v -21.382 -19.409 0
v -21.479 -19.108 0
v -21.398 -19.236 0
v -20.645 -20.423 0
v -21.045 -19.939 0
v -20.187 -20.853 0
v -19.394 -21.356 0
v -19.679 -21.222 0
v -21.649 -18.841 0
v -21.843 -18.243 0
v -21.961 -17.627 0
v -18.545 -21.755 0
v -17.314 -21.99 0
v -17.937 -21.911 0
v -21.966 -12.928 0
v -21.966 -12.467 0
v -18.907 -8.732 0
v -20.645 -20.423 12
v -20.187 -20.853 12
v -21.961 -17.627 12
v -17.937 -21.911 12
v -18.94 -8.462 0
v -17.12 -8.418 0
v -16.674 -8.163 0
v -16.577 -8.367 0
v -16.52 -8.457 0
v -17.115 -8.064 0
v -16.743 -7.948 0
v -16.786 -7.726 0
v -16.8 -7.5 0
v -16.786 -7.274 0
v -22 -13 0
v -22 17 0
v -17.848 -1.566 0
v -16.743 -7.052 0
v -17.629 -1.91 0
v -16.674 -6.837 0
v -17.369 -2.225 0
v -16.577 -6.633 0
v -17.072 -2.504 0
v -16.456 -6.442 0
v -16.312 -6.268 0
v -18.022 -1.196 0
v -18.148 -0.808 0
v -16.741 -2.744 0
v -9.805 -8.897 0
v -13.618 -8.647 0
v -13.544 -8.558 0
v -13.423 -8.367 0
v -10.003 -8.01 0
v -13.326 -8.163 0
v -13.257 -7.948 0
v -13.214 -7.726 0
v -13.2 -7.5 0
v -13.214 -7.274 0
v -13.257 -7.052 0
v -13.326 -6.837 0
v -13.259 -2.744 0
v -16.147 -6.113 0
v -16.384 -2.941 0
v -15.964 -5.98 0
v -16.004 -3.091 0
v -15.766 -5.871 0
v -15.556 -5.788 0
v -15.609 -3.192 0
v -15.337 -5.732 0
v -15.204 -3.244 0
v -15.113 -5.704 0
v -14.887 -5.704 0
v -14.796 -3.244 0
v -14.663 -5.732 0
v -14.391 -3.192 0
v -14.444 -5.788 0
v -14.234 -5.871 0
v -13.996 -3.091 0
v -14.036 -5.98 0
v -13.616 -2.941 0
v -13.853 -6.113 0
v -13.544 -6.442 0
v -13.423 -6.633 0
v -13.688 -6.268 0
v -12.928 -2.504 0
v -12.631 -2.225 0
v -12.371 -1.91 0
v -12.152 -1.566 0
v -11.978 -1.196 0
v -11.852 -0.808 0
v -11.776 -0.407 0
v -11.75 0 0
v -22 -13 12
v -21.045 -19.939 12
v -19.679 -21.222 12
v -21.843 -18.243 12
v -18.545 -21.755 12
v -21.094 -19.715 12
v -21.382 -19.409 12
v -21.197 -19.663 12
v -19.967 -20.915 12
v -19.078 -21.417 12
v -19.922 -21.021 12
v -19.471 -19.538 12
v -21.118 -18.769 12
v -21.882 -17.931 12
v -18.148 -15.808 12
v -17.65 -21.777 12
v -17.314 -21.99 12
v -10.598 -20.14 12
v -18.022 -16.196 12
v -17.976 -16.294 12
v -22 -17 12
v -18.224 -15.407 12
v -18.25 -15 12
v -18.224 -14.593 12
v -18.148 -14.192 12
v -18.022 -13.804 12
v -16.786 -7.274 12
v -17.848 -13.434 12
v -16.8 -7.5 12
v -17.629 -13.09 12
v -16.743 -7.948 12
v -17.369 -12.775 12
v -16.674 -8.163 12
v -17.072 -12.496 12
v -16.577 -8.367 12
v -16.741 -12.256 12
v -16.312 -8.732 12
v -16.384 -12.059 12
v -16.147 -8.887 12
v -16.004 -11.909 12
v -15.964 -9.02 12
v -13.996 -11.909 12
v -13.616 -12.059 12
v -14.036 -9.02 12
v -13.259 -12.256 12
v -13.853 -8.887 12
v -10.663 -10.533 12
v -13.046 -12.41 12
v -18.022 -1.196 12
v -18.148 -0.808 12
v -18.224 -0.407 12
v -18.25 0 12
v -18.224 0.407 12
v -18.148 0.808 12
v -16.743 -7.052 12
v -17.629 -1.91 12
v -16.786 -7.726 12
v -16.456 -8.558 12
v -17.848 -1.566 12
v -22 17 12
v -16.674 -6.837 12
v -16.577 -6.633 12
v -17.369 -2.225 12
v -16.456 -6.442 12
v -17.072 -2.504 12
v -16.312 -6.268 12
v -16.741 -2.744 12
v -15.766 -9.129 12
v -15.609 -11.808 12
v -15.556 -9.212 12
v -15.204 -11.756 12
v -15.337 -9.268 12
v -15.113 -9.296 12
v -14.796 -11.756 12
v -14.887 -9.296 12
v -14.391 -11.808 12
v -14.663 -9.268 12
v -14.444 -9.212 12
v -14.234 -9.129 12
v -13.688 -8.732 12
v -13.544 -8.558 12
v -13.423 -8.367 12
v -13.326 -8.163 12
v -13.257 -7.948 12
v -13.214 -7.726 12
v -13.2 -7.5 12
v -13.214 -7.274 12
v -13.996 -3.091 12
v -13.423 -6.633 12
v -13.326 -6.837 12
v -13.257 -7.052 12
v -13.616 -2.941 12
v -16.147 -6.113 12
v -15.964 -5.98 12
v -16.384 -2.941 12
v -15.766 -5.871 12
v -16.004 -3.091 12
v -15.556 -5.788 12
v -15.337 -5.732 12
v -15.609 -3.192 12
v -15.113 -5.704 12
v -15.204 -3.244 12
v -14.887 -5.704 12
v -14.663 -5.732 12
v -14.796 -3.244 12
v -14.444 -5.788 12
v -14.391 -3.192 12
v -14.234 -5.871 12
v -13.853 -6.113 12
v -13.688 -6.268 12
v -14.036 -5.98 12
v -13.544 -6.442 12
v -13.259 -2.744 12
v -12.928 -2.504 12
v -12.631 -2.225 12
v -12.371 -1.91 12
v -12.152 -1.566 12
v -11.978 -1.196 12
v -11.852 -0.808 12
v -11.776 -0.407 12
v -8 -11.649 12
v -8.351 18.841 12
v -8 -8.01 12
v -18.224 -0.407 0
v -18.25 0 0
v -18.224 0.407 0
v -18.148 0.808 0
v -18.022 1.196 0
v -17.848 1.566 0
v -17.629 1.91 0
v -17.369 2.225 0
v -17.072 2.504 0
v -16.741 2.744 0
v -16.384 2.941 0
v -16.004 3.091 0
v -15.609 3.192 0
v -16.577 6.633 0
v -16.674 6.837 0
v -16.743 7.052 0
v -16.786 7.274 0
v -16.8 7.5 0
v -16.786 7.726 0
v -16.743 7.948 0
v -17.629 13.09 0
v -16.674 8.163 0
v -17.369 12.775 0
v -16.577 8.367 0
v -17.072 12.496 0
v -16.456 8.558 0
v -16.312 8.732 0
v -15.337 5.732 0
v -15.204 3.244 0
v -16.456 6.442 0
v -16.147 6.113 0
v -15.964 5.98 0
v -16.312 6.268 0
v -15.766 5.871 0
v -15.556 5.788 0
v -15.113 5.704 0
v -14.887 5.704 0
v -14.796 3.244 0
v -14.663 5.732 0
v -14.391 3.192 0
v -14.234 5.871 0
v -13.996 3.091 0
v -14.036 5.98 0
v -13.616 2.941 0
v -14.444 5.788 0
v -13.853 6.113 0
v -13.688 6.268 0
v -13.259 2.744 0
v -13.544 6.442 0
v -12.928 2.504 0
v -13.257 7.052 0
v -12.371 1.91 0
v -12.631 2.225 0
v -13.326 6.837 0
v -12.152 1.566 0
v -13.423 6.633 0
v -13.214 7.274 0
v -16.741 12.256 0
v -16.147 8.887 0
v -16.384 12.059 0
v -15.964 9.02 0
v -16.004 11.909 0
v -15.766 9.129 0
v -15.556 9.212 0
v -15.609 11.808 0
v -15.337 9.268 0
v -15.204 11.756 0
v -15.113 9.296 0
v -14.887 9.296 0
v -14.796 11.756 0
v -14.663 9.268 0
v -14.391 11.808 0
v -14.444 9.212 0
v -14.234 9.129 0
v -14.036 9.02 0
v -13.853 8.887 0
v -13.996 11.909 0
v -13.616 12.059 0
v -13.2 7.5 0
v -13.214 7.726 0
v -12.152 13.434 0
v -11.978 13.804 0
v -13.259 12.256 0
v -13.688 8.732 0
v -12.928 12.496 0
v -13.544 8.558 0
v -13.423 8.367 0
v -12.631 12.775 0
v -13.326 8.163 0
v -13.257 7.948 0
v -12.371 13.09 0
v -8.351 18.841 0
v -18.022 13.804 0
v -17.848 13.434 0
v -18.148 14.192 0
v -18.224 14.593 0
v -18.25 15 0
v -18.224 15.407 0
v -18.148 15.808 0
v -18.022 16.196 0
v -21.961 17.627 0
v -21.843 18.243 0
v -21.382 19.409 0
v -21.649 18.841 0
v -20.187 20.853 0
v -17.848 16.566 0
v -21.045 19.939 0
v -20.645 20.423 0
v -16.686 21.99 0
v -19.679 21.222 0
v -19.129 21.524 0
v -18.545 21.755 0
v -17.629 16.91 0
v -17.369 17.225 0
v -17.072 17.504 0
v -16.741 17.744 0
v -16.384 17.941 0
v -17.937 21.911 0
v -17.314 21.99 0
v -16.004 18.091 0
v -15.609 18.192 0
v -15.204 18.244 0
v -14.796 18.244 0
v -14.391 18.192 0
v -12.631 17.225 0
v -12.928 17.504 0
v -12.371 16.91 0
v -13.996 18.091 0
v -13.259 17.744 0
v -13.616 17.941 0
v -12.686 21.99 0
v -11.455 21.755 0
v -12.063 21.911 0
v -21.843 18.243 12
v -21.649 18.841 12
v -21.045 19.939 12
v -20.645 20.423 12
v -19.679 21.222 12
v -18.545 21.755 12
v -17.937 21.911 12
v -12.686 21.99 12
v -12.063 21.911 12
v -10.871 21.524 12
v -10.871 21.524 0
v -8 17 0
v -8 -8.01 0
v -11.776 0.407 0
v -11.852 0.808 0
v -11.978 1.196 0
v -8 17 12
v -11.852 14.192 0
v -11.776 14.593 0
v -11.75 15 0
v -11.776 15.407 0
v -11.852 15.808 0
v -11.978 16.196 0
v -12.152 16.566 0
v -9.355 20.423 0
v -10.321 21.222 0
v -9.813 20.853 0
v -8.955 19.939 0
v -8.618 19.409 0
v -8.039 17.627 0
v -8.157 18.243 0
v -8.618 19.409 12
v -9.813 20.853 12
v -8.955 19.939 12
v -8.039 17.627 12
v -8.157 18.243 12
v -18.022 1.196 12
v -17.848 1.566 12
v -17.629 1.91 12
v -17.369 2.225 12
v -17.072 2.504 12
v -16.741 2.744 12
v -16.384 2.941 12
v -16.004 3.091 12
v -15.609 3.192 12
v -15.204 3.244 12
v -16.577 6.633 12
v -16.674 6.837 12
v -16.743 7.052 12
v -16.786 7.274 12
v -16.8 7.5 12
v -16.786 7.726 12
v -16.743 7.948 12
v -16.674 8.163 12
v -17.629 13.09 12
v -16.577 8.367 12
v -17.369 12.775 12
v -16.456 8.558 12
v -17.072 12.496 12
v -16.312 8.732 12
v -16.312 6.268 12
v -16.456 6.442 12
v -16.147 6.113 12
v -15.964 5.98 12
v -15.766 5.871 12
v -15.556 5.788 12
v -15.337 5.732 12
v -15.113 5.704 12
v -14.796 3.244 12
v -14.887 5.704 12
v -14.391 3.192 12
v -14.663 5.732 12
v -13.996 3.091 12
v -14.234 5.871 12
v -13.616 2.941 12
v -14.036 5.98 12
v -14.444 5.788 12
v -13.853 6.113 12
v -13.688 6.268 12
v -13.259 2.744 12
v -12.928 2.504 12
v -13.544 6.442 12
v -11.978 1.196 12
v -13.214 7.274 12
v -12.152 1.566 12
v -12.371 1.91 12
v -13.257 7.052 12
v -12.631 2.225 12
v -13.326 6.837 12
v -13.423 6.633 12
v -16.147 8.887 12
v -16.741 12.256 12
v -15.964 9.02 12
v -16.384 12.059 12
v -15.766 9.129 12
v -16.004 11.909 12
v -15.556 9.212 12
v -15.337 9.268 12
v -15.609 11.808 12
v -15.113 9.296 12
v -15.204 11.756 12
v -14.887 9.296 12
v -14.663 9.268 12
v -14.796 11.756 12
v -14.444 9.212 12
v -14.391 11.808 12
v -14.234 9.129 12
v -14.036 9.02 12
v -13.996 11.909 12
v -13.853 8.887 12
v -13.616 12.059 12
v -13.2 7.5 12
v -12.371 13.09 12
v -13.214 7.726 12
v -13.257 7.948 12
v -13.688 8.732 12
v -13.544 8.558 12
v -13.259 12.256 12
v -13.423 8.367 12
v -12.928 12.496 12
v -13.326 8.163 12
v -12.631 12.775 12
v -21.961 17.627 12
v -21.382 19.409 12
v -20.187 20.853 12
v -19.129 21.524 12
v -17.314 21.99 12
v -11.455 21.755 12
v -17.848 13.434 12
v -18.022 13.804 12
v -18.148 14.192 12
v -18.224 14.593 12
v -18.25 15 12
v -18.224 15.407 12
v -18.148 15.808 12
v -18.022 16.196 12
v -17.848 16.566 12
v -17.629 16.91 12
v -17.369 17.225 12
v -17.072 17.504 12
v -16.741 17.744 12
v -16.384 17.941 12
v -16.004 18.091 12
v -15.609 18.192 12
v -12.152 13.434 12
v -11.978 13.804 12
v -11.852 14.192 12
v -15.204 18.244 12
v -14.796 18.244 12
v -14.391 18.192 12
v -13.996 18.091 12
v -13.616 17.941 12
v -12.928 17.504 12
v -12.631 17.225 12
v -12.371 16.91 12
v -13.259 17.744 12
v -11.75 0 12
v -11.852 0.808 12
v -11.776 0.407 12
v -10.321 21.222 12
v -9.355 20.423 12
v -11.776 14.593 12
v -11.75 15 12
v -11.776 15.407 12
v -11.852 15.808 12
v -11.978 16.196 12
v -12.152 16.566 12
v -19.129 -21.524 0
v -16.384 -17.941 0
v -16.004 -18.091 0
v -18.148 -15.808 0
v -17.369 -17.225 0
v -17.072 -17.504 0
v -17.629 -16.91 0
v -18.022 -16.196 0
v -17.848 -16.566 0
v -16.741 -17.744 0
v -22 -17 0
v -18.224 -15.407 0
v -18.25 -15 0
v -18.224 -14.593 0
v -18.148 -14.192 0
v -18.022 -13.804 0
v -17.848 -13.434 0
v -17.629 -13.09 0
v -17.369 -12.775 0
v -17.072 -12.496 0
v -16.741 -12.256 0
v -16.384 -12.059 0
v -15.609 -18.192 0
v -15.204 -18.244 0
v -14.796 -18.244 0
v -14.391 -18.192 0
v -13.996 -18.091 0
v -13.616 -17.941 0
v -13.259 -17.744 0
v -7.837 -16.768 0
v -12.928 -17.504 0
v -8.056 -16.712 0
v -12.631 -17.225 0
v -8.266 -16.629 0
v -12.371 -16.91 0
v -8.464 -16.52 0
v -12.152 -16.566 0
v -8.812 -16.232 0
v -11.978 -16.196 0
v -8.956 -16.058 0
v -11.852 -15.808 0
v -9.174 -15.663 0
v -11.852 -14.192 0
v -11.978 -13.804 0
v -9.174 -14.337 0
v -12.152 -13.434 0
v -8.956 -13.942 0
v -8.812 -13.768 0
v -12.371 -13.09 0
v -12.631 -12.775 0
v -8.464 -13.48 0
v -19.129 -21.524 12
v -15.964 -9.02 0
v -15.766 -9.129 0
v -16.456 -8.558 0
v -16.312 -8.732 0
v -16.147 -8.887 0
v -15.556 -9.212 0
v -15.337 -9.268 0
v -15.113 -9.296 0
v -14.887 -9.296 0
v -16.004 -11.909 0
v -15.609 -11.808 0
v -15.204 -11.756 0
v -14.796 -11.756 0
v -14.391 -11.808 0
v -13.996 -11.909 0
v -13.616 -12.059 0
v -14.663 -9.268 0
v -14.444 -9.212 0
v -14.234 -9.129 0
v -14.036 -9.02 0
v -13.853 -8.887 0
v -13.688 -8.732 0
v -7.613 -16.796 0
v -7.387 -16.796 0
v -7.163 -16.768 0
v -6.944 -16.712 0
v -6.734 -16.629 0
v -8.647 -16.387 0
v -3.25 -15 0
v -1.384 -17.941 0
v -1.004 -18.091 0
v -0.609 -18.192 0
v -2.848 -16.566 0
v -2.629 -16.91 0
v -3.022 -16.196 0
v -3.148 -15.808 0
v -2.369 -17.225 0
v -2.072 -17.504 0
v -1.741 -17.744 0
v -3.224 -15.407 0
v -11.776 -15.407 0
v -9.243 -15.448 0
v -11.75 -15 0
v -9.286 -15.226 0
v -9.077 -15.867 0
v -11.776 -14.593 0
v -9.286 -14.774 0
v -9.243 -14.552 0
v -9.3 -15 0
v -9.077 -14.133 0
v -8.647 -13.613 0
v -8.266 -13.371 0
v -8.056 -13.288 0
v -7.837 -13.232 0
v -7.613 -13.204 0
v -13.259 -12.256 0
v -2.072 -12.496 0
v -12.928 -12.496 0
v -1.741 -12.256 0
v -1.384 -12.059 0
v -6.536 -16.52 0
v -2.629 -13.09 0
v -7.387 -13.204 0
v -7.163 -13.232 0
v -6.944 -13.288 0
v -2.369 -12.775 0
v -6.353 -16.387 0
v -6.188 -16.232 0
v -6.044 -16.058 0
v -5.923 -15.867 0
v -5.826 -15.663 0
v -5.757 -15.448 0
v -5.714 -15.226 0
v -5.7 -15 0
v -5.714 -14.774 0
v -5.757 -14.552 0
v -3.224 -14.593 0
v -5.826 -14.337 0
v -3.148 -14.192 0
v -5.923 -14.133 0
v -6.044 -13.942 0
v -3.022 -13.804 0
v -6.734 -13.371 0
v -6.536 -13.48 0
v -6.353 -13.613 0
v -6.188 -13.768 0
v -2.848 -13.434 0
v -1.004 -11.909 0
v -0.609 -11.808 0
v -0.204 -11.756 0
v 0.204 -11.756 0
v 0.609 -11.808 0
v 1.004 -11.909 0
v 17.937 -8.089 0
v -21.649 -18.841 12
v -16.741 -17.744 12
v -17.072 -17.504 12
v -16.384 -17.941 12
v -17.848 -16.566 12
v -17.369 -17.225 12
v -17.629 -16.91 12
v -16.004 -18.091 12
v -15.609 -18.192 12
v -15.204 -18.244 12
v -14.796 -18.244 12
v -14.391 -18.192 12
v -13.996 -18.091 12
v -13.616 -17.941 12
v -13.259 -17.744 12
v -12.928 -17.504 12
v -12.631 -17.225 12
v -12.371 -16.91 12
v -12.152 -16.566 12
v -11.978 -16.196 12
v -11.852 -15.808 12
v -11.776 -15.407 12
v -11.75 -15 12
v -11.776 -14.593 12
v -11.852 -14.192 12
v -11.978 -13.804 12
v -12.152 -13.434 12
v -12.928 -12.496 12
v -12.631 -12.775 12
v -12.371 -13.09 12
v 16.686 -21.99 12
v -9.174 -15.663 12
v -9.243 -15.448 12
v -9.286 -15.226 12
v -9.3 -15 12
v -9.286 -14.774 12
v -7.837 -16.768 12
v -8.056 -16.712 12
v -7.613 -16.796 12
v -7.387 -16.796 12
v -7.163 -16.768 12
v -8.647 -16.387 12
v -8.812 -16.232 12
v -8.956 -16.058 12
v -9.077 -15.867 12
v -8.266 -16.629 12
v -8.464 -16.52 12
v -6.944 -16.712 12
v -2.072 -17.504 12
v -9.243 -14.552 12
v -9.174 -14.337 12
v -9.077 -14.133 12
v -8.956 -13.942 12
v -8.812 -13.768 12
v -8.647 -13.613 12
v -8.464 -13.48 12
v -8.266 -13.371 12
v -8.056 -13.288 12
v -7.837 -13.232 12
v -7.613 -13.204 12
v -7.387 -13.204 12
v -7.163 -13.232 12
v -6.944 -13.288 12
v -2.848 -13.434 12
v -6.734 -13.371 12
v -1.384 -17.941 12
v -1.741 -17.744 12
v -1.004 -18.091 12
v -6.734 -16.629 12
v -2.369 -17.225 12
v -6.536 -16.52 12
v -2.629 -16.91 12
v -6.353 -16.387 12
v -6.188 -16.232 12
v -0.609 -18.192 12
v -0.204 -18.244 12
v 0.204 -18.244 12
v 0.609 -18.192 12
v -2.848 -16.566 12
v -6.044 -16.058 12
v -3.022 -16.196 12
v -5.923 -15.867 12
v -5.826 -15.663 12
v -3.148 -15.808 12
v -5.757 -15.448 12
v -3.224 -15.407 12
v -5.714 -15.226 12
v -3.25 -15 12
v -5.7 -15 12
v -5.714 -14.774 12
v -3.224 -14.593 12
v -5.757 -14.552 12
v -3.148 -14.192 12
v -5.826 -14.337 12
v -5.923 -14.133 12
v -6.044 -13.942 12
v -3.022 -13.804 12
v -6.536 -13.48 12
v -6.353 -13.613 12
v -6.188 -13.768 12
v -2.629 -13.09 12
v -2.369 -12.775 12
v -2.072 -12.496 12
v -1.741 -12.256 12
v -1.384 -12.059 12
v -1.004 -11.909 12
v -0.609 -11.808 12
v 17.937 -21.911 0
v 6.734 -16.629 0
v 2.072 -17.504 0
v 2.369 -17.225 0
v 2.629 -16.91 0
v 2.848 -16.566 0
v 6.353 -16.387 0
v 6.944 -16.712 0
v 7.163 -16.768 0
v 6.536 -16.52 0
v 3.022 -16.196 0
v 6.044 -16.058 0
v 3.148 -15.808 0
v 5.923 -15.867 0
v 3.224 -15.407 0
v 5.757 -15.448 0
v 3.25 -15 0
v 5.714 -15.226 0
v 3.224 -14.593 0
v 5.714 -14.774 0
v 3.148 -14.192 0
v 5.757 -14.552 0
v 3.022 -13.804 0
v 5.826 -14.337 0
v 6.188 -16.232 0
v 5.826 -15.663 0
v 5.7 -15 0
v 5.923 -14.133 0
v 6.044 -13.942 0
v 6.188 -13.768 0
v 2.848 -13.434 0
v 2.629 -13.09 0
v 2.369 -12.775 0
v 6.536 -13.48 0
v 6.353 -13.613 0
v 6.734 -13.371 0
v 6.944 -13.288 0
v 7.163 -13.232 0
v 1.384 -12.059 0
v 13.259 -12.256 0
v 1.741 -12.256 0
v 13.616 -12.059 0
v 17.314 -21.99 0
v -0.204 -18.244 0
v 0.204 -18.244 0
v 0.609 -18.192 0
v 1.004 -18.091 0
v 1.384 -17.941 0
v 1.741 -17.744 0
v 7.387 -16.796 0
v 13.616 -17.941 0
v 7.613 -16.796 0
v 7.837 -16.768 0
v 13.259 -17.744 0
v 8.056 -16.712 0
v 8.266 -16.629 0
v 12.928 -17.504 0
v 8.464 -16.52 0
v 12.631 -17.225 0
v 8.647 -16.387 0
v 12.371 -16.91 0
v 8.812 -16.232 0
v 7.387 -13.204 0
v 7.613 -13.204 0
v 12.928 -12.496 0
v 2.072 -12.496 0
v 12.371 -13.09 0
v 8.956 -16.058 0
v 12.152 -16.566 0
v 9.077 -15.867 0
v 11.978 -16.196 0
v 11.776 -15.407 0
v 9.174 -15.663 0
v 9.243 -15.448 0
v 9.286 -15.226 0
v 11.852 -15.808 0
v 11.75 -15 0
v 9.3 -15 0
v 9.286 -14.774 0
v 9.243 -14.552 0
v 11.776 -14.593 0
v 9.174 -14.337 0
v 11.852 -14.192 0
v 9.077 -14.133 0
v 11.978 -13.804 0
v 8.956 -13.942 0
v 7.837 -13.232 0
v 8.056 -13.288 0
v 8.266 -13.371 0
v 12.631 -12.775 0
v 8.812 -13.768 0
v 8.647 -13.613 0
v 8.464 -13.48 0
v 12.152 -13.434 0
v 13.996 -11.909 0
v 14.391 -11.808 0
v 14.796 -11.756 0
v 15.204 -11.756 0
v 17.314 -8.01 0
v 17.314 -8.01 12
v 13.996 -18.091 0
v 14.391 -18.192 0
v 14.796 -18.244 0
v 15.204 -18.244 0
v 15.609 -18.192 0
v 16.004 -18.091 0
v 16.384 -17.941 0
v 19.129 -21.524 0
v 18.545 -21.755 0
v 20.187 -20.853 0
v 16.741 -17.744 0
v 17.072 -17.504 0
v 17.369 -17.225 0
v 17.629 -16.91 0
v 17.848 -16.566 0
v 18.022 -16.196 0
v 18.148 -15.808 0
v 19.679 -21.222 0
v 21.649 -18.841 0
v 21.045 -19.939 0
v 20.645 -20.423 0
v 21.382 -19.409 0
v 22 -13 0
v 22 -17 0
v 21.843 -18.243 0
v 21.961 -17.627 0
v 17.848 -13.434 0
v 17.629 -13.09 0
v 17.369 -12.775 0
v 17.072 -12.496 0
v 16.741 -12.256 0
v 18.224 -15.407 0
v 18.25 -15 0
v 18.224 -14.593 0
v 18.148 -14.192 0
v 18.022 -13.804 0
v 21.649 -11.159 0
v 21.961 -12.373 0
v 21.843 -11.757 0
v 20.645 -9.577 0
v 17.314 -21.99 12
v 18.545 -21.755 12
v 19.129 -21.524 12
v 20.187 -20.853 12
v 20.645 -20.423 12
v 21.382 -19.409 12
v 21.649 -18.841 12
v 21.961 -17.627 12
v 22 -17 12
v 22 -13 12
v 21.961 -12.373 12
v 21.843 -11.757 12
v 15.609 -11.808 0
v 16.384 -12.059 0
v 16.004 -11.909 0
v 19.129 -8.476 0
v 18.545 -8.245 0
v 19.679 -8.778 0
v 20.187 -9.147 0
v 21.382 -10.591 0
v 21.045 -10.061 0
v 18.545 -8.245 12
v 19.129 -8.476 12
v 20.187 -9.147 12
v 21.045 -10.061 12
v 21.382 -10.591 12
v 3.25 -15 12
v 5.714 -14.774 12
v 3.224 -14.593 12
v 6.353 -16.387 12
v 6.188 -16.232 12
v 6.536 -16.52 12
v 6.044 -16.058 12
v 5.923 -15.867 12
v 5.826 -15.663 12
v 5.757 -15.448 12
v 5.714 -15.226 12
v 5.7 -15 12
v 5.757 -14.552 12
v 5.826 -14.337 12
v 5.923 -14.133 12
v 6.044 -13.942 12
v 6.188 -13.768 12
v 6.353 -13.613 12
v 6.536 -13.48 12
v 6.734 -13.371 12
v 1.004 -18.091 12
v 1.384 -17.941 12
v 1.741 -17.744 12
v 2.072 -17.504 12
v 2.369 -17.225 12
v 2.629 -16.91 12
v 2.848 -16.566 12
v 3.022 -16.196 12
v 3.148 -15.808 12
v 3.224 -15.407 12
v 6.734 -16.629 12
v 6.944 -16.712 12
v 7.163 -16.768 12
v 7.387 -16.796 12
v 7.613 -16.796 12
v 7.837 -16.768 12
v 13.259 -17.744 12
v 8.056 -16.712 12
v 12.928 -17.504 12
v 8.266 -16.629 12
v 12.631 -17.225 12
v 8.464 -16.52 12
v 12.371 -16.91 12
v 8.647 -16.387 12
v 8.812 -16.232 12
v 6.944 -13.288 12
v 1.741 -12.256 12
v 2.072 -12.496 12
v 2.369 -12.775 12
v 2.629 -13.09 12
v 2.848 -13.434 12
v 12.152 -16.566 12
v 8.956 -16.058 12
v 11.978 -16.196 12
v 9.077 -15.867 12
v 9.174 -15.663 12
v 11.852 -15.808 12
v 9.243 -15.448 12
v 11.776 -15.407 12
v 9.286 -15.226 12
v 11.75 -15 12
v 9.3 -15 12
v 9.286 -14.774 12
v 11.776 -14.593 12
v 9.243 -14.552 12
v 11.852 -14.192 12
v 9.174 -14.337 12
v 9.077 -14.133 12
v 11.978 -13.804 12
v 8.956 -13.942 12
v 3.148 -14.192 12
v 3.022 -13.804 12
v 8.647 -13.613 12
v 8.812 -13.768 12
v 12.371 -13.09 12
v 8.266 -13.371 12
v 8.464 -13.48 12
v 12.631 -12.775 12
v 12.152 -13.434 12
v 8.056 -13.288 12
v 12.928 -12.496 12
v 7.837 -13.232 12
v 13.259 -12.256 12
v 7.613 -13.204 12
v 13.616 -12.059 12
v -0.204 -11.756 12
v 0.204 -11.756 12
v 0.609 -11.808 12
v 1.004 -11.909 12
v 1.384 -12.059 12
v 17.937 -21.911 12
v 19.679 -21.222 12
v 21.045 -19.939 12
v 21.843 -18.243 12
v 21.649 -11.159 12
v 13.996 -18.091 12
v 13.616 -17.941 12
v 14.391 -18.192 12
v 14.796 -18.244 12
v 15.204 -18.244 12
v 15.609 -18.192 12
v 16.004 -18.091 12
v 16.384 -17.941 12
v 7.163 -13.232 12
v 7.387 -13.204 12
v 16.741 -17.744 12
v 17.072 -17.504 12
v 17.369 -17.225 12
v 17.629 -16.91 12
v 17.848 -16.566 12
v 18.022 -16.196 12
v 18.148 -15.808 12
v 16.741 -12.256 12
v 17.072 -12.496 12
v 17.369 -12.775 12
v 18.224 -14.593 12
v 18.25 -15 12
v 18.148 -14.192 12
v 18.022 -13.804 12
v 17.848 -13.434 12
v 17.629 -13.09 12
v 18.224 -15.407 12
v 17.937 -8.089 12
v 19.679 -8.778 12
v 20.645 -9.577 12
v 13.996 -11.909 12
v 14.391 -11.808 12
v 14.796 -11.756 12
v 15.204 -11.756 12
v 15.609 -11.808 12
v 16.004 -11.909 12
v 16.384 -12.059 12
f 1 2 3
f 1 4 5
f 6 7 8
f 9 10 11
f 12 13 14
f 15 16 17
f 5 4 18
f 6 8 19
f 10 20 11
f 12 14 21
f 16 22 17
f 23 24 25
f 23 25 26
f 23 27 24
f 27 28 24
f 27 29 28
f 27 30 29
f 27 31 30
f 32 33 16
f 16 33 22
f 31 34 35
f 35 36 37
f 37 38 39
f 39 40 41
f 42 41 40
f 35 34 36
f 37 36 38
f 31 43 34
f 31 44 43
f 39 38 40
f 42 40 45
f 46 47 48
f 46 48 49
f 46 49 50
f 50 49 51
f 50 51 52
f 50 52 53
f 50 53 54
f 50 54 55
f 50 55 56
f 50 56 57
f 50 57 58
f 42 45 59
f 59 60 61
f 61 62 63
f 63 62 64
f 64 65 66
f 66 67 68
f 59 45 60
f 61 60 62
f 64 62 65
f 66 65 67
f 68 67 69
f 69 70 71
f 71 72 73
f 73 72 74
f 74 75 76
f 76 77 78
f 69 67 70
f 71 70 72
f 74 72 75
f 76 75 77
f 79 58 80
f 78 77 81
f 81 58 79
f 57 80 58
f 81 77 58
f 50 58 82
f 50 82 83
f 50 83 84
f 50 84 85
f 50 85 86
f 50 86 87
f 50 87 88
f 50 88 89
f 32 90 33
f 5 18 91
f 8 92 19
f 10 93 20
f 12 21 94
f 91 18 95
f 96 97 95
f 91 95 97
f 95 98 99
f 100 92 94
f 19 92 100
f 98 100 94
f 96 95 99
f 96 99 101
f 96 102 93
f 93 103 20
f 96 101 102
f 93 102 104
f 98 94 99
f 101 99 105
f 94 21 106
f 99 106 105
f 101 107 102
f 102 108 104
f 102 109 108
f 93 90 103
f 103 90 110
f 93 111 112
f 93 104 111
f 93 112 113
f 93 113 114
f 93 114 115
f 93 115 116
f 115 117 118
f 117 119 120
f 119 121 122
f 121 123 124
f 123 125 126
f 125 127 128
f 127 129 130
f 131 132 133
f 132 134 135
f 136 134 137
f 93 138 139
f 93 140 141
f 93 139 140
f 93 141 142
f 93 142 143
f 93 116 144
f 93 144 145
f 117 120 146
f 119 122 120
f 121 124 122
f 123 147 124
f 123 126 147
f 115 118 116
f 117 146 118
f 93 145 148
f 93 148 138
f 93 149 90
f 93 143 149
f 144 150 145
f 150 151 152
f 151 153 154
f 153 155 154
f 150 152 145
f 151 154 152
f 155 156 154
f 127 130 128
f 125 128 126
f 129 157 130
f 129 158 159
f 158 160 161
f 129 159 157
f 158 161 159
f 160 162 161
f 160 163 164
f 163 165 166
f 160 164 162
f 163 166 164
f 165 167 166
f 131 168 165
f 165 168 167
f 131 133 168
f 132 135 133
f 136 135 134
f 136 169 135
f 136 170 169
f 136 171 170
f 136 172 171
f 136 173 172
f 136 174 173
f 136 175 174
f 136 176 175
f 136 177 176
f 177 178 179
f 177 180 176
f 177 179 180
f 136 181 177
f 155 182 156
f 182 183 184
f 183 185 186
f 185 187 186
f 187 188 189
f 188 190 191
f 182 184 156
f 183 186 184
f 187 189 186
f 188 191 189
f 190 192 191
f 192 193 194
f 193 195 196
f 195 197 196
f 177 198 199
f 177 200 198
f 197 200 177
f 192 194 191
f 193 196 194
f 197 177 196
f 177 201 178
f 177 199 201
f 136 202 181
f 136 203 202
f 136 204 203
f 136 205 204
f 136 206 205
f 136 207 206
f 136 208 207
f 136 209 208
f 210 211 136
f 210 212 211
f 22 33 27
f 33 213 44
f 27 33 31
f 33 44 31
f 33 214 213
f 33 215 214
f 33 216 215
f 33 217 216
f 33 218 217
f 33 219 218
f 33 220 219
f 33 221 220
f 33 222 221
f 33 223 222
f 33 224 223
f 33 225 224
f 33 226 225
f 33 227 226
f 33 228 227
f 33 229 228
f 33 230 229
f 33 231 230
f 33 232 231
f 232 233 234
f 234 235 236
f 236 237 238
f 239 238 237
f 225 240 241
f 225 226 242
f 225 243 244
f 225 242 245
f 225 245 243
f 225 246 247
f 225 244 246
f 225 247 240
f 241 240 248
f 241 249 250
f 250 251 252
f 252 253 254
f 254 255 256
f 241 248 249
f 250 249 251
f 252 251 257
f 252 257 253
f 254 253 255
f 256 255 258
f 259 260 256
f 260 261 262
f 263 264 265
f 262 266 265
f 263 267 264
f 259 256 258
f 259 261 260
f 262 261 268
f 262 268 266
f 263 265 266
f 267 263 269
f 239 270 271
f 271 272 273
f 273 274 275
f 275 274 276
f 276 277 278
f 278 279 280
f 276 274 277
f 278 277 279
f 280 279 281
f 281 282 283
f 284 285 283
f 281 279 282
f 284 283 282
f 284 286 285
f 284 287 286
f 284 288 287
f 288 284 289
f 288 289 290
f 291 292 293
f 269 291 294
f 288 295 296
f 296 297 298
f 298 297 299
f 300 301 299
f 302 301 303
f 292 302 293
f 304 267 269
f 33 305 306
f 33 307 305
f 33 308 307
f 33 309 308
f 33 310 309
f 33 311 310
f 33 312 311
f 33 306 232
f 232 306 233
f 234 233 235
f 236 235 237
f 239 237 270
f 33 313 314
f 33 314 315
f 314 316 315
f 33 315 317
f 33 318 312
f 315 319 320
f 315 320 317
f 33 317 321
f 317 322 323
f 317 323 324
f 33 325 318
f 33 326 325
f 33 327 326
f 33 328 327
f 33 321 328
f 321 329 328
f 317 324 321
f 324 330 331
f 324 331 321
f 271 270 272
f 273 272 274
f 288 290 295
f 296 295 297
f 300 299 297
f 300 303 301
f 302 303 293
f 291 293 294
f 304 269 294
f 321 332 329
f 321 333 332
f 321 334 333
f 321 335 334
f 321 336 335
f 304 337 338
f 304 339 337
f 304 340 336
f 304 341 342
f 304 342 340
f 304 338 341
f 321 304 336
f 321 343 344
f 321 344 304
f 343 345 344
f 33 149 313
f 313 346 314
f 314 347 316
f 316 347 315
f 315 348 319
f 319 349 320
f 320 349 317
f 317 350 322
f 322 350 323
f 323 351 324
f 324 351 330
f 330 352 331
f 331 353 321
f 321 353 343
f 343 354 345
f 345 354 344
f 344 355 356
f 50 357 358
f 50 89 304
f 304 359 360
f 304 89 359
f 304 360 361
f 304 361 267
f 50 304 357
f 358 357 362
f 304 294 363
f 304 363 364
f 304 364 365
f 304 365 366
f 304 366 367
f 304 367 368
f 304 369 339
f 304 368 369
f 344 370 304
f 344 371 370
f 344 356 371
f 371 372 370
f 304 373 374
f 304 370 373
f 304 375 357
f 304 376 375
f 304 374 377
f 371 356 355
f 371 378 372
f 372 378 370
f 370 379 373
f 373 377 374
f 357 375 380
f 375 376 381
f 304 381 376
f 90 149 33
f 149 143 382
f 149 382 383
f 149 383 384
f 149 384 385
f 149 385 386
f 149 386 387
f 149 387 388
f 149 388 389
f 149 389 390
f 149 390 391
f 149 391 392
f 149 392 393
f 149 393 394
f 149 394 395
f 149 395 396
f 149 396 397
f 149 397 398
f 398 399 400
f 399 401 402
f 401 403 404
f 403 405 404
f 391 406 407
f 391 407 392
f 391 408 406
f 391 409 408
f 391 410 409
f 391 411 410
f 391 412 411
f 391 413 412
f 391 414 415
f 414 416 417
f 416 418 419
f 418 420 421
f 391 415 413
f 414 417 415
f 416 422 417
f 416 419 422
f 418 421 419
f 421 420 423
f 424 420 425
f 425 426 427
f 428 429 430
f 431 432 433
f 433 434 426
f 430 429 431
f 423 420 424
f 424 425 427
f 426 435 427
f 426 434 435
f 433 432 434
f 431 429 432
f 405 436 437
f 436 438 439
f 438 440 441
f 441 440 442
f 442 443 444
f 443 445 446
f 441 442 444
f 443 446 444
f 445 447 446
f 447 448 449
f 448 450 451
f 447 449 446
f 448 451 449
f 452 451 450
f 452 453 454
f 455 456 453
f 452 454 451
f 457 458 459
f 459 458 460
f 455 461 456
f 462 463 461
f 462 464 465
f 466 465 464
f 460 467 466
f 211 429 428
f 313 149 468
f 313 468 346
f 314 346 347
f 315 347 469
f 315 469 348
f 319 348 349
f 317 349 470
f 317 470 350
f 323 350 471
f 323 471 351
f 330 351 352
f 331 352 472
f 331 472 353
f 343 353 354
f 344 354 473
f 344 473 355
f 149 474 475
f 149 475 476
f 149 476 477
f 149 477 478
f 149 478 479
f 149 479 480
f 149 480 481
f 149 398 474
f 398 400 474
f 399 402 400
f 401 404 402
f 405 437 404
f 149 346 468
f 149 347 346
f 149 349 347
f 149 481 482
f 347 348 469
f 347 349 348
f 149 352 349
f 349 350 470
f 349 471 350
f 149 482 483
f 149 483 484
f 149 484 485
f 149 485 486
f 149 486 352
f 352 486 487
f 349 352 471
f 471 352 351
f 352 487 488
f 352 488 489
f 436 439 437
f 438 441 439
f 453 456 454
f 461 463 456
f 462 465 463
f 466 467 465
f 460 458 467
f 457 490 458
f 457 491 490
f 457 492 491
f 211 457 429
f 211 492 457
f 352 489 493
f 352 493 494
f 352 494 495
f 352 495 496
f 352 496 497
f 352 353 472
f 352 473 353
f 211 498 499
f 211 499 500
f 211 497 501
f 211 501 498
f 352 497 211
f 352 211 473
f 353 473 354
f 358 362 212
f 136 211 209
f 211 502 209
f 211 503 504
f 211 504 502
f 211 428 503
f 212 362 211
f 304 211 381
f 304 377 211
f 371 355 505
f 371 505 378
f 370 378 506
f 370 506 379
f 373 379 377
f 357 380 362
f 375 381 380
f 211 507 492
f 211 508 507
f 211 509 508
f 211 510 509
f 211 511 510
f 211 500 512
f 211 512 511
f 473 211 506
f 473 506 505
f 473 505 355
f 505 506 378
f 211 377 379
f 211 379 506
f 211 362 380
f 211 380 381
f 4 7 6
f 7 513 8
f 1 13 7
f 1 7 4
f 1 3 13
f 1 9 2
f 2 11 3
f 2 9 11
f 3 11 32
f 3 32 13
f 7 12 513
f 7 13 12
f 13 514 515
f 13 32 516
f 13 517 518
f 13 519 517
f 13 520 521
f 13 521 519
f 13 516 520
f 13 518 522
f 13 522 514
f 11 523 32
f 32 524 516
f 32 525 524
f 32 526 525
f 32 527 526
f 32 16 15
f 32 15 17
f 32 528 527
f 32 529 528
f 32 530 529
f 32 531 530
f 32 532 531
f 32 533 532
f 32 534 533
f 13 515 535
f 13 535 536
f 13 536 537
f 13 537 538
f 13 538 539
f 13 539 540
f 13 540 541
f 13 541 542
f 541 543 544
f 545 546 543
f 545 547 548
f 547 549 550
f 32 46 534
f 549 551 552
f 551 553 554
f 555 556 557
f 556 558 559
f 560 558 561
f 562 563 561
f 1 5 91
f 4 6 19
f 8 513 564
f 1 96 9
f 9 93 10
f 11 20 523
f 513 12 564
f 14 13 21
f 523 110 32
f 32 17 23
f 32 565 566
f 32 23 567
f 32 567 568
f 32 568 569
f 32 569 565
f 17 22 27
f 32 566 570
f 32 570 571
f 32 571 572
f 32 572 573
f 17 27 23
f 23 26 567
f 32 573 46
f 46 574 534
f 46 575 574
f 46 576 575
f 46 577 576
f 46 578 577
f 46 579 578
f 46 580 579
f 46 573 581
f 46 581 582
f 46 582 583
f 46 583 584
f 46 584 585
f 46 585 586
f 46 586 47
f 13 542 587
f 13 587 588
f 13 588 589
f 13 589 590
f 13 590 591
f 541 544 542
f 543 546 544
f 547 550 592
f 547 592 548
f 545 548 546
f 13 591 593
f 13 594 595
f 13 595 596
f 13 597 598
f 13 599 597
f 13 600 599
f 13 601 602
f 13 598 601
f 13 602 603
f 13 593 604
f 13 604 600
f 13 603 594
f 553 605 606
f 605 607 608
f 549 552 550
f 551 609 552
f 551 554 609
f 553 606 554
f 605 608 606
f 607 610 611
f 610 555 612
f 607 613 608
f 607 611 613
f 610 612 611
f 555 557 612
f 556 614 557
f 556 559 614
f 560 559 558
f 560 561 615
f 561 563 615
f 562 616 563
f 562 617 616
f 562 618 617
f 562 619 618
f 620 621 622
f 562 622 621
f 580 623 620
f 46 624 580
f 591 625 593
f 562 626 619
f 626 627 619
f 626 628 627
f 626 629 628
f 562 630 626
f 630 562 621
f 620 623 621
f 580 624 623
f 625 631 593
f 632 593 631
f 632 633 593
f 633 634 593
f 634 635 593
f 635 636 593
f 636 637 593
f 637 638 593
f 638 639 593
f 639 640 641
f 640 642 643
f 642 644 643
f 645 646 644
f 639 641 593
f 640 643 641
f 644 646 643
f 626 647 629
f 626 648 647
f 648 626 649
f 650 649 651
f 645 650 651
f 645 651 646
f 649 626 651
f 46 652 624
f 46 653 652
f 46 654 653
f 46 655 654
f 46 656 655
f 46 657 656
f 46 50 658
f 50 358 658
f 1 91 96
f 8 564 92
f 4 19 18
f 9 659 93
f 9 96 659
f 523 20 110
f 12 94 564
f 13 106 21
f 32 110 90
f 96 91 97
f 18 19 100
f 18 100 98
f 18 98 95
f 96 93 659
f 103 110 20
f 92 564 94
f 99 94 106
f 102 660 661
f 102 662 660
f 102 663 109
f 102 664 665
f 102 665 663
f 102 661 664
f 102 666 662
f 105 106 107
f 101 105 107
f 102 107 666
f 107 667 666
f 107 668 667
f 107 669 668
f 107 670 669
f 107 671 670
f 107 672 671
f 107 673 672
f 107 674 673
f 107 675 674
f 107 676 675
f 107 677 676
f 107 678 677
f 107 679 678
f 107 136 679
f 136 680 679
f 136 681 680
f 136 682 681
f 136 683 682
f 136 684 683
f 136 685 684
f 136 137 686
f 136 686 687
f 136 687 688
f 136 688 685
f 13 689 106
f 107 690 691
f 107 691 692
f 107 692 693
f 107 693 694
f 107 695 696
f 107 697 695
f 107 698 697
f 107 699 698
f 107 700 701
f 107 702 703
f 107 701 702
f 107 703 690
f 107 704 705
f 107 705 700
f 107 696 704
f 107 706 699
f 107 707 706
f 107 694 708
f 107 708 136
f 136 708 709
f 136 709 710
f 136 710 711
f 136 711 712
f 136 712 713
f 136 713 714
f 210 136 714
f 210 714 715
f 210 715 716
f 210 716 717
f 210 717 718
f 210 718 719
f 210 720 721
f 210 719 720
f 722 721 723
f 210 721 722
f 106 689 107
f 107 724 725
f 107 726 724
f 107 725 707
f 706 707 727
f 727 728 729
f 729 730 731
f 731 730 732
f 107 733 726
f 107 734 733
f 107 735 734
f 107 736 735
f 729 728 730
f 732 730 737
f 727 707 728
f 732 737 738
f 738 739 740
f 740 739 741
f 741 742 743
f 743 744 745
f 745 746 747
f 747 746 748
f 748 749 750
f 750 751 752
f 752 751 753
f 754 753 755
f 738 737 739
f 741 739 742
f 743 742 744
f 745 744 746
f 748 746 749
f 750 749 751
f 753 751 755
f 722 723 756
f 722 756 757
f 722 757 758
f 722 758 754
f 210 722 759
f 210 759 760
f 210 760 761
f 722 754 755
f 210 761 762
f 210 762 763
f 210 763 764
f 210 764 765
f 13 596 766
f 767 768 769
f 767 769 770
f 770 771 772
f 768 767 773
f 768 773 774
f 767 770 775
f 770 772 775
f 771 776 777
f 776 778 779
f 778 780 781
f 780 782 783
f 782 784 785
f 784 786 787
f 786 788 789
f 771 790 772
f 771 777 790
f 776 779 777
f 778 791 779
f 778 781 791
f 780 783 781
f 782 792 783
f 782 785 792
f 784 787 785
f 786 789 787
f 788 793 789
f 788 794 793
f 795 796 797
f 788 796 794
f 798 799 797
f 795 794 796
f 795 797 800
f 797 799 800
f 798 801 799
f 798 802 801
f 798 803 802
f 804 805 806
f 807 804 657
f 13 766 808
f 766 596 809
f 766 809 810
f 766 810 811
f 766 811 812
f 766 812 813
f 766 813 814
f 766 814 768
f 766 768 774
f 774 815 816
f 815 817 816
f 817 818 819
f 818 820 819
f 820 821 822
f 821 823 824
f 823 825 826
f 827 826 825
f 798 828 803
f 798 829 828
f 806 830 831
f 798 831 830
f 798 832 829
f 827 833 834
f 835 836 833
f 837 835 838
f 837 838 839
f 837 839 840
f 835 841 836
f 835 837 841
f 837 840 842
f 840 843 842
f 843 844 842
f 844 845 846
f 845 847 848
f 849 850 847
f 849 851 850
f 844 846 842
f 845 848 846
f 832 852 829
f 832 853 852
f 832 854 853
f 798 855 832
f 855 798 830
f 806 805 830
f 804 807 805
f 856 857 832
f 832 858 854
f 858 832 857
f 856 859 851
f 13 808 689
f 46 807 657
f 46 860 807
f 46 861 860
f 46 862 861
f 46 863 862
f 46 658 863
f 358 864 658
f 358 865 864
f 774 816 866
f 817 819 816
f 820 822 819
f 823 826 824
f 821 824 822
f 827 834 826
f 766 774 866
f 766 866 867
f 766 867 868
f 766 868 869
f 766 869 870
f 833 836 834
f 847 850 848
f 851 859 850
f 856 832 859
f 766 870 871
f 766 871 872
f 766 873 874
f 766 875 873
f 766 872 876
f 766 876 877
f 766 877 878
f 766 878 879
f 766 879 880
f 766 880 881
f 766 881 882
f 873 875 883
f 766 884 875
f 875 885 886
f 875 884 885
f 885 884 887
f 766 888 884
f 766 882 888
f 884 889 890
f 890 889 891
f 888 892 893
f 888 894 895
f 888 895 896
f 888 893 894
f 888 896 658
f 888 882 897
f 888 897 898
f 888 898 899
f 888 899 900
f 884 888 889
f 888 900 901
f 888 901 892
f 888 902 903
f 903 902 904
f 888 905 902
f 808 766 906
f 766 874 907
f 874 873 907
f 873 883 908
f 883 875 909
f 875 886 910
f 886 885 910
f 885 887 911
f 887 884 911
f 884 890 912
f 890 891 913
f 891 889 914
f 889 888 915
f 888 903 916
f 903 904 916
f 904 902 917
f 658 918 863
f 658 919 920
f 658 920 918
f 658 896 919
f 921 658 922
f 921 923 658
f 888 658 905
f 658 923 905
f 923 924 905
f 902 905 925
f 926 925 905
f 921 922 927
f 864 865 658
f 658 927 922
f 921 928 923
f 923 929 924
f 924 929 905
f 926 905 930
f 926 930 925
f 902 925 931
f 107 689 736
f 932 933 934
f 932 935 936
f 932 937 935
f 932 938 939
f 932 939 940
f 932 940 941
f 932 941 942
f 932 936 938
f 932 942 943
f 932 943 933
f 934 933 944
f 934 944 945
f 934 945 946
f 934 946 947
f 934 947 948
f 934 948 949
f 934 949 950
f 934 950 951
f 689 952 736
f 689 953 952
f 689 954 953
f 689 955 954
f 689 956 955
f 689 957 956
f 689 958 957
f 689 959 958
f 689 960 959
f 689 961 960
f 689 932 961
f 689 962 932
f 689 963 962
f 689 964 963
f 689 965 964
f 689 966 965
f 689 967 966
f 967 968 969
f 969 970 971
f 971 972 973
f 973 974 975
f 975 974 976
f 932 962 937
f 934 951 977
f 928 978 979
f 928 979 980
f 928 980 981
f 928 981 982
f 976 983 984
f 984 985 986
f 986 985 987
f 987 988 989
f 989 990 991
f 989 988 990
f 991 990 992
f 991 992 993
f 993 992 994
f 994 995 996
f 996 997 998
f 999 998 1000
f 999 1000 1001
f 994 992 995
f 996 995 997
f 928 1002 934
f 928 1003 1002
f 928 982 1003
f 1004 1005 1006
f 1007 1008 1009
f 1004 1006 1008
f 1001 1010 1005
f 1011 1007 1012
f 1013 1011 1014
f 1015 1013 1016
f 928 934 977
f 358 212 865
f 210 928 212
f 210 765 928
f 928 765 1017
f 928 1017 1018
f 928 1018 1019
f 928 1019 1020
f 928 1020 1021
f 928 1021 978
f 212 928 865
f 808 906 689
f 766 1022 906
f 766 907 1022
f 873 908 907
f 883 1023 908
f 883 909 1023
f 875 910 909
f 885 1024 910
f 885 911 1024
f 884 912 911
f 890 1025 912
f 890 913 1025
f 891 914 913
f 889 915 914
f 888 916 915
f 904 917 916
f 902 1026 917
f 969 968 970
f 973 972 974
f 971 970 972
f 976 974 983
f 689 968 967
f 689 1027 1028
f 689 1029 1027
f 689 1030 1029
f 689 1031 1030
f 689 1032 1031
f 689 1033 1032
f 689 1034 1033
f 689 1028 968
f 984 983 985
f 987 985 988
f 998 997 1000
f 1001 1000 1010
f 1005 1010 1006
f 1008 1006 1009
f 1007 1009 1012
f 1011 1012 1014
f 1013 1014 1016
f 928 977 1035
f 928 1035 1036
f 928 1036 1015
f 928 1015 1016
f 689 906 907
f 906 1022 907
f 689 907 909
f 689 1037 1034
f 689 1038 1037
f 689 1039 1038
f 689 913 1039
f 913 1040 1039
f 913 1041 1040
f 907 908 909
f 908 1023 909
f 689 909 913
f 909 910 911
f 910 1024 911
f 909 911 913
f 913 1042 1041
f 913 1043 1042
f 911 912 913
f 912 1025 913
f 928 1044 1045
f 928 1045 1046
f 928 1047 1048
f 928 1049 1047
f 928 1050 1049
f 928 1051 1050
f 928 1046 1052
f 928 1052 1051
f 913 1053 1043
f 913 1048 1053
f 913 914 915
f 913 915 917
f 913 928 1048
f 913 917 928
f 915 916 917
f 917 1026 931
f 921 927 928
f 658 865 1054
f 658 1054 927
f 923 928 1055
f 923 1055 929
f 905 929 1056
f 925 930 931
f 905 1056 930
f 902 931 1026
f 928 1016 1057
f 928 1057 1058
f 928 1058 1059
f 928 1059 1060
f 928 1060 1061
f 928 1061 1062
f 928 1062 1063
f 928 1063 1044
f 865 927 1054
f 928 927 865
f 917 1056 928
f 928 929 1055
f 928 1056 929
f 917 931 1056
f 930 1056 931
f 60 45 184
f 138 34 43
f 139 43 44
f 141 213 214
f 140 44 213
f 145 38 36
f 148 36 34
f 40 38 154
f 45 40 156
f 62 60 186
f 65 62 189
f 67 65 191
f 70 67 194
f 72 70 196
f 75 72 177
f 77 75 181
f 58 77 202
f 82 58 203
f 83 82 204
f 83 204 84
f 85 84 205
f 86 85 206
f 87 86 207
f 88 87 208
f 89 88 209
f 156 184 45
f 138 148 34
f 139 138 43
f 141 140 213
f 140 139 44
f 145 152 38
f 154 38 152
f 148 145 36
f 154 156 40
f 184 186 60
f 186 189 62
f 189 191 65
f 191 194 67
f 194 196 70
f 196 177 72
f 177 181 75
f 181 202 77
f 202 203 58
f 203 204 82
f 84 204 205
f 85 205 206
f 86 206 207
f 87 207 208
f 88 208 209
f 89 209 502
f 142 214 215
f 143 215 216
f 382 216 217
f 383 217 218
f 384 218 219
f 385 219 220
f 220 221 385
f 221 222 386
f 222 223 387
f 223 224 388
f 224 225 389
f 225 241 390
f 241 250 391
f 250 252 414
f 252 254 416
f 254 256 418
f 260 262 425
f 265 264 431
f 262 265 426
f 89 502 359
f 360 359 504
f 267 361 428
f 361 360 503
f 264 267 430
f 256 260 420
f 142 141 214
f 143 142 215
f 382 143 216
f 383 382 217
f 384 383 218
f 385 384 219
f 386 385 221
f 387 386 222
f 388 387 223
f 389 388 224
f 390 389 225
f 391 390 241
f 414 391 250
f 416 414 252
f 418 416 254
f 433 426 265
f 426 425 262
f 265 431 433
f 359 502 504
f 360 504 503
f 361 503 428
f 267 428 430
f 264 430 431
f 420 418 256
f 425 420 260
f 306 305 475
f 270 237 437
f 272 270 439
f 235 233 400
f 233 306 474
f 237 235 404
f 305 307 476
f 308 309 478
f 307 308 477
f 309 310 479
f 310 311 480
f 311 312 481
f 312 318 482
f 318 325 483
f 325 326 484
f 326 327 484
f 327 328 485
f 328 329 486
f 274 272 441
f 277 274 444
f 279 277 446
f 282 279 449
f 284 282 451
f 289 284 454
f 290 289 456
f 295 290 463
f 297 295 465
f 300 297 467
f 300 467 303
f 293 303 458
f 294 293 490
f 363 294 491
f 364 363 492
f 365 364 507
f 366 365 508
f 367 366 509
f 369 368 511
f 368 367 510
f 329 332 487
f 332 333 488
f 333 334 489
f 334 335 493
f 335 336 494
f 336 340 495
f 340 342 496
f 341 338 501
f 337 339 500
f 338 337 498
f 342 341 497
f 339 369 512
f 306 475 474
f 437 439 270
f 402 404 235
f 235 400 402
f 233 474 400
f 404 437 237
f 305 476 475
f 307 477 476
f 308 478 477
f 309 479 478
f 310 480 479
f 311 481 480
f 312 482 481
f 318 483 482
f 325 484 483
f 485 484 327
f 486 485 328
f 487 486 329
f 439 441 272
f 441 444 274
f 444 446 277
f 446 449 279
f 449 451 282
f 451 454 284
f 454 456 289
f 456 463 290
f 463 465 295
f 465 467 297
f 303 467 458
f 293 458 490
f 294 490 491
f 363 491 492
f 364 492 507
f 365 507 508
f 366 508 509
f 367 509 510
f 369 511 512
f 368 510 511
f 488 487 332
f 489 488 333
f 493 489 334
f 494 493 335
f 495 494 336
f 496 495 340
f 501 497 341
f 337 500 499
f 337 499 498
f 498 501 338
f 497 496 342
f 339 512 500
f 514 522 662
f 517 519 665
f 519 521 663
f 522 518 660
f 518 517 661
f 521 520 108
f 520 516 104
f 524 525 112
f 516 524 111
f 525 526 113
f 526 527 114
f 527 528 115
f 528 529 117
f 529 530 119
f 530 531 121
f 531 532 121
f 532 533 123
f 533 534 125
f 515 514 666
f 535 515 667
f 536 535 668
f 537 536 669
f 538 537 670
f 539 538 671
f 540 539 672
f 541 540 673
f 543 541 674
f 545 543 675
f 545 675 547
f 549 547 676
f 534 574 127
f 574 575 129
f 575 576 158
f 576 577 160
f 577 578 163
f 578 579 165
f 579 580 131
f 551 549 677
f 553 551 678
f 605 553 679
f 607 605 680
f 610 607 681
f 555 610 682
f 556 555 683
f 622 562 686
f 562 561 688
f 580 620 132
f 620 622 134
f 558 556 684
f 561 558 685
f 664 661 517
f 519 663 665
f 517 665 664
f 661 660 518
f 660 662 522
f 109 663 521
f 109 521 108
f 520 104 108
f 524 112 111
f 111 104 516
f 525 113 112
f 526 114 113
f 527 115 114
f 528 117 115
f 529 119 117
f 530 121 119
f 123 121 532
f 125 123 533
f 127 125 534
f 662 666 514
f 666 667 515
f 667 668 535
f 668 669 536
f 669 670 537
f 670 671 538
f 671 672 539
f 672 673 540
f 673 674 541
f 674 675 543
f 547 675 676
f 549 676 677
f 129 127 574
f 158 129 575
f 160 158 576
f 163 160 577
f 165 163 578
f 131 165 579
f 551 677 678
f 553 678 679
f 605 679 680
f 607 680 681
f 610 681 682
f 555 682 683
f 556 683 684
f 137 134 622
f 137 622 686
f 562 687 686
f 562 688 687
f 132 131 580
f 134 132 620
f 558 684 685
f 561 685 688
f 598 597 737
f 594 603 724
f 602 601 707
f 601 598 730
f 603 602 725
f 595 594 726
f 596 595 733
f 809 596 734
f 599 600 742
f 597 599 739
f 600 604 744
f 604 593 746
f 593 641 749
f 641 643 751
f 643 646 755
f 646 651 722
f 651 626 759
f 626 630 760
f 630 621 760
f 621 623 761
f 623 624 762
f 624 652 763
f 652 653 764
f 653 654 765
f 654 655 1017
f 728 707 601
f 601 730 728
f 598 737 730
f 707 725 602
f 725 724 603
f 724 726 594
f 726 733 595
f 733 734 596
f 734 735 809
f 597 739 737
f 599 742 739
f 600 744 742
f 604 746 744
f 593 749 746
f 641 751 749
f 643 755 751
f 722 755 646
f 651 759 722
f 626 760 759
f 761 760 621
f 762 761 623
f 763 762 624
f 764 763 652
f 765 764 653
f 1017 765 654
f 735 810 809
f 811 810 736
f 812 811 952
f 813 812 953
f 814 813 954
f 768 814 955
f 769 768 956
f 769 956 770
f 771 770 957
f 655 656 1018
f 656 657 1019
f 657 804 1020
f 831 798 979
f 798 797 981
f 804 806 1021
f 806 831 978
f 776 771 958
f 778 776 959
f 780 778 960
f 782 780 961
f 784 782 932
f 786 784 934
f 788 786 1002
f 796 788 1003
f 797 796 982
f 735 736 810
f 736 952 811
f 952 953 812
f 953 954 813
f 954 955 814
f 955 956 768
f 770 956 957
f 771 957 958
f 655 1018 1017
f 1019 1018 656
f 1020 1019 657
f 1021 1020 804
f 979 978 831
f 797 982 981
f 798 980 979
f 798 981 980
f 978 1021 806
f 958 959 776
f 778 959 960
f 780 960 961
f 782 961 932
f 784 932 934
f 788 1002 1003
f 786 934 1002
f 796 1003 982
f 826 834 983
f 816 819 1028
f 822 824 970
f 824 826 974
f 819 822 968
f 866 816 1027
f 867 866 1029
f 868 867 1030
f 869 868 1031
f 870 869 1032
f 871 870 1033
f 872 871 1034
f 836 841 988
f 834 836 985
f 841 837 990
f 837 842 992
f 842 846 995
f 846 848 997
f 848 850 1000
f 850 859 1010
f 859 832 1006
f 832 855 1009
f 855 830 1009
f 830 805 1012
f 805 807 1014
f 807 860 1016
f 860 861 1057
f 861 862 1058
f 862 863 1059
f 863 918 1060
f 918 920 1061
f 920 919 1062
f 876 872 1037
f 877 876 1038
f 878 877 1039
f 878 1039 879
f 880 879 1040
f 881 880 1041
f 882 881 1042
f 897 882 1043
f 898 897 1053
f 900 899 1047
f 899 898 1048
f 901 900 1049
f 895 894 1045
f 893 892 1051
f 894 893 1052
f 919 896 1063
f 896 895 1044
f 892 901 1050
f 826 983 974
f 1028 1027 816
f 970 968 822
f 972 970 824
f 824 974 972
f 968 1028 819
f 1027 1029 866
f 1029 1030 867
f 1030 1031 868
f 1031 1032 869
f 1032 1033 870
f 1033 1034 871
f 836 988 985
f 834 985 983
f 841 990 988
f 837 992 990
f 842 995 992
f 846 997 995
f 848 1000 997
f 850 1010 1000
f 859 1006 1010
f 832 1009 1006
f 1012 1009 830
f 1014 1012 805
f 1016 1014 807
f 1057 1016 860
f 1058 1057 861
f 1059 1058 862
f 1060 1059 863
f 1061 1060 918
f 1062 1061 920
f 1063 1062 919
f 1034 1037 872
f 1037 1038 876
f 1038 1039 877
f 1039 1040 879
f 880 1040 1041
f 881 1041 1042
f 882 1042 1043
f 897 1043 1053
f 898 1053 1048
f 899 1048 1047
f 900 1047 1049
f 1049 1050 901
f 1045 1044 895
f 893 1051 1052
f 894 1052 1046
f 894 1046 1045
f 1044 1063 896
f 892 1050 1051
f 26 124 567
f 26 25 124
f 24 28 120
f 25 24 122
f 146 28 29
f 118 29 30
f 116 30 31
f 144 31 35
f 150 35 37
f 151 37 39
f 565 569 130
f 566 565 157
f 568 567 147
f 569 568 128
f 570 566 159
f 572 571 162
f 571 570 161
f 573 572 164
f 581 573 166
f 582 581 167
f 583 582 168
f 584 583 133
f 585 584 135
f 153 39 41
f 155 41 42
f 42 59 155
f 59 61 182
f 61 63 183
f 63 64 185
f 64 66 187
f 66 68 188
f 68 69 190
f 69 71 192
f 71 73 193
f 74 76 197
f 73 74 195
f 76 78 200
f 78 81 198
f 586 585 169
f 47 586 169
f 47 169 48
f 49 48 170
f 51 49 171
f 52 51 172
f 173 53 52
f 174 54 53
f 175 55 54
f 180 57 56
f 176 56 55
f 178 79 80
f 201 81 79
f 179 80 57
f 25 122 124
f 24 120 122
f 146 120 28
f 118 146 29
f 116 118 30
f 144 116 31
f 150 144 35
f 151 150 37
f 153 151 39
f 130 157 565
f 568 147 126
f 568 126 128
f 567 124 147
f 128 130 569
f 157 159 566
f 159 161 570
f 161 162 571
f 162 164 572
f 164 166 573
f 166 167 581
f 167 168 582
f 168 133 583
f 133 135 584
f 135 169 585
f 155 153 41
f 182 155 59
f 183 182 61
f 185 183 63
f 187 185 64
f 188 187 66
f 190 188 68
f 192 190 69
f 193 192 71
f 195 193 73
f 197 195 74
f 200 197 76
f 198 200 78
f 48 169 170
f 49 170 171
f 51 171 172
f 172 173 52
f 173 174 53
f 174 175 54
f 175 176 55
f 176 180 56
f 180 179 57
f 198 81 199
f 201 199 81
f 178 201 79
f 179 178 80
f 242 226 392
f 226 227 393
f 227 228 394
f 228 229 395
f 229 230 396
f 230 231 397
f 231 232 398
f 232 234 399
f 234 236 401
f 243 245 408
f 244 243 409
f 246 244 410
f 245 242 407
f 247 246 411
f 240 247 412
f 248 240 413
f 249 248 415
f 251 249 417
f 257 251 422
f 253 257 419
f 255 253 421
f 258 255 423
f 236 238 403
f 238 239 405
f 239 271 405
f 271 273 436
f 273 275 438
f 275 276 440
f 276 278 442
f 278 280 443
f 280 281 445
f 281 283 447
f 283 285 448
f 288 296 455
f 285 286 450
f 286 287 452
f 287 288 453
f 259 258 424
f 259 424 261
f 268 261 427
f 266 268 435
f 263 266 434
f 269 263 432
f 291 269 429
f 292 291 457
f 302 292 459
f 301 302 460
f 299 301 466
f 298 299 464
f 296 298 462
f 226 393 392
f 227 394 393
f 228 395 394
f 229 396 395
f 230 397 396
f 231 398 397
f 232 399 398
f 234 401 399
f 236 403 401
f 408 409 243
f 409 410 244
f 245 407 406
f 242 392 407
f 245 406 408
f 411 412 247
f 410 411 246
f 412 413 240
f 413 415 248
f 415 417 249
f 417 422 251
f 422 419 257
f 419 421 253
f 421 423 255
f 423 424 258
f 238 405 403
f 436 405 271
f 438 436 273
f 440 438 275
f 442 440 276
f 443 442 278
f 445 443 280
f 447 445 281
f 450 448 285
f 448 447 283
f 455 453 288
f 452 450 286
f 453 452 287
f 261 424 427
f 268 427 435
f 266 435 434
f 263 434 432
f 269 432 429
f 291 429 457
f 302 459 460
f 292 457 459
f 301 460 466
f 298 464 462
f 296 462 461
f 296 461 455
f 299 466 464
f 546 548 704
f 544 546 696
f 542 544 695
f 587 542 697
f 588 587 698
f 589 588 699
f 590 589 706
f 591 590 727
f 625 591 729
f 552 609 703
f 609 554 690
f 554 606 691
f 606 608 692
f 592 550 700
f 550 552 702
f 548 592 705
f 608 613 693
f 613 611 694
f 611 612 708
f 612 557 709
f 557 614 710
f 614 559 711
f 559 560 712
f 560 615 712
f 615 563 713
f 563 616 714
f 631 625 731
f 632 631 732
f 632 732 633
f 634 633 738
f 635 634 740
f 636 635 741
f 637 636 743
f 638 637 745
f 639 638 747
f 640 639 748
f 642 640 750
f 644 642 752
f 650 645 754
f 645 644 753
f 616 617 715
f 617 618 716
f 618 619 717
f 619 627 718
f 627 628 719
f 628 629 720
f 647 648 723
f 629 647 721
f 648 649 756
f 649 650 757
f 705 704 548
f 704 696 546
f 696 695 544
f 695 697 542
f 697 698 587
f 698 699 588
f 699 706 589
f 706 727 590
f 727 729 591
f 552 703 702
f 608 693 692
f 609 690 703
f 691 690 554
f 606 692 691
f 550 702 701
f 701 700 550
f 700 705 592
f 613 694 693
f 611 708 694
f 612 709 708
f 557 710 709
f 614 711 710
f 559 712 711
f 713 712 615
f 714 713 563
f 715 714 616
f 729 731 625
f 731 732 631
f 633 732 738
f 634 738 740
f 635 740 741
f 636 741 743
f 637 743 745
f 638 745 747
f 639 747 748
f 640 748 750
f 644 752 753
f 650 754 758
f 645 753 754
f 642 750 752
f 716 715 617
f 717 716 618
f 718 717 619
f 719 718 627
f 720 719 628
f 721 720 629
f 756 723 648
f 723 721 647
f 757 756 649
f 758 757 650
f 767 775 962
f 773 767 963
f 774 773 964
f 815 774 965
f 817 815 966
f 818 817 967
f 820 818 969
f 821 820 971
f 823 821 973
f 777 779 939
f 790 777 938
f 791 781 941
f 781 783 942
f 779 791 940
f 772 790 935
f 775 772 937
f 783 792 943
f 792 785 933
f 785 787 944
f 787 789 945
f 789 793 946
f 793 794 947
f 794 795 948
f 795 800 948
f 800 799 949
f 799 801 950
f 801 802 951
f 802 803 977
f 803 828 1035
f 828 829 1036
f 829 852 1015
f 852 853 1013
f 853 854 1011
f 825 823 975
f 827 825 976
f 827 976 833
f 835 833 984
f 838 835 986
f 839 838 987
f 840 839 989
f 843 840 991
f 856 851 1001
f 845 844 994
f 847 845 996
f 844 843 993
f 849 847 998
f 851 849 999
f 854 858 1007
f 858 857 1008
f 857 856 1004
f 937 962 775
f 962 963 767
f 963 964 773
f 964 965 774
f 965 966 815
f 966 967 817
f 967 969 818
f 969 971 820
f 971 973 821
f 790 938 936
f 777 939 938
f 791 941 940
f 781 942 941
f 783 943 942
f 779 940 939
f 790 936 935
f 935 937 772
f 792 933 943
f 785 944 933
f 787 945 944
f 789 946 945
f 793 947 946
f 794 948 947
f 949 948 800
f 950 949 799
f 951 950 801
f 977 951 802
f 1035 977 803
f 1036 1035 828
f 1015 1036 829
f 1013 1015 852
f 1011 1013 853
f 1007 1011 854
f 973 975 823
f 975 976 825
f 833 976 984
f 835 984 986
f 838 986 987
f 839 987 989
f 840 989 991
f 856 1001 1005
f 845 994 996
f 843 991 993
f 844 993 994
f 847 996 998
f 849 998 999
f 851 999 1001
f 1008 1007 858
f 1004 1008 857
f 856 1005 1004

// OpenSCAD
$fn = 50;

difference() {
	union() {
		translate(v = [-15.0, 0, 0]) {
			hull() {
				translate(v = [-2.0, 17.0, 0]) {
					cylinder(h = 12, r = 5);
				}
				translate(v = [2.0, 17.0, 0]) {
					cylinder(h = 12, r = 5);
				}
				translate(v = [-2.0, -17.0, 0]) {
					cylinder(h = 12, r = 5);
				}
				translate(v = [2.0, -17.0, 0]) {
					cylinder(h = 12, r = 5);
				}
			}
		}
		translate(v = [0, -15.0, 0]) {
			hull() {
				translate(v = [-17.0, 2.0, 0]) {
					cylinder(h = 12, r = 5);
				}
				translate(v = [17.0, 2.0, 0]) {
					cylinder(h = 12, r = 5);
				}
				translate(v = [-17.0, -2.0, 0]) {
					cylinder(h = 12, r = 5);
				}
				translate(v = [17.0, -2.0, 0]) {
					cylinder(h = 12, r = 5);
				}
			}
		}
	}
	union() {
		#translate(v = [-15.0, -15.0, 0]) {
			cylinder(h = 12, r = 3.25);
		}
		#translate(v = [-15.0, 0.0, 0]) {
			cylinder(h = 12, r = 3.25);
		}
		#translate(v = [-15.0, 15.0, 0]) {
			cylinder(h = 12, r = 3.25);
		}
		#translate(v = [-15.0, -15.0, 0]) {
			cylinder(h = 12, r = 3.25);
		}
		#translate(v = [0.0, -15.0, 0]) {
			cylinder(h = 12, r = 3.25);
		}
		#translate(v = [15.0, -15.0, 0]) {
			cylinder(h = 12, r = 3.25);
		}
		#translate(v = [-15.0, -15.0, 0]) {
			cylinder(h = 12, r = 1.8);
		}
		#translate(v = [-15.0, -7.5, 0]) {
			cylinder(h = 12, r = 1.8);
		}
		#translate(v = [-15.0, 0.0, 0]) {
			cylinder(h = 12, r = 1.8);
		}
		#translate(v = [-15.0, 7.5, 0]) {
			cylinder(h = 12, r = 1.8);
		}
		#translate(v = [-15.0, 15.0, 0]) {
			cylinder(h = 12, r = 1.8);
		}
		#translate(v = [-15.0, -15.0, 0]) {
			cylinder(h = 12, r = 1.8);
		}
		#translate(v = [-7.5, -15.0, 0]) {
			cylinder(h = 12, r = 1.8);
		}
		#translate(v = [0.0, -15.0, 0]) {
			cylinder(h = 12, r = 1.8);
		}
		#translate(v = [7.5, -15.0, 0]) {
			cylinder(h = 12, r = 1.8);
		}
		#translate(v = [15.0, -15.0, 0]) {
			cylinder(h = 12, r = 1.8);
		}
	}
}
